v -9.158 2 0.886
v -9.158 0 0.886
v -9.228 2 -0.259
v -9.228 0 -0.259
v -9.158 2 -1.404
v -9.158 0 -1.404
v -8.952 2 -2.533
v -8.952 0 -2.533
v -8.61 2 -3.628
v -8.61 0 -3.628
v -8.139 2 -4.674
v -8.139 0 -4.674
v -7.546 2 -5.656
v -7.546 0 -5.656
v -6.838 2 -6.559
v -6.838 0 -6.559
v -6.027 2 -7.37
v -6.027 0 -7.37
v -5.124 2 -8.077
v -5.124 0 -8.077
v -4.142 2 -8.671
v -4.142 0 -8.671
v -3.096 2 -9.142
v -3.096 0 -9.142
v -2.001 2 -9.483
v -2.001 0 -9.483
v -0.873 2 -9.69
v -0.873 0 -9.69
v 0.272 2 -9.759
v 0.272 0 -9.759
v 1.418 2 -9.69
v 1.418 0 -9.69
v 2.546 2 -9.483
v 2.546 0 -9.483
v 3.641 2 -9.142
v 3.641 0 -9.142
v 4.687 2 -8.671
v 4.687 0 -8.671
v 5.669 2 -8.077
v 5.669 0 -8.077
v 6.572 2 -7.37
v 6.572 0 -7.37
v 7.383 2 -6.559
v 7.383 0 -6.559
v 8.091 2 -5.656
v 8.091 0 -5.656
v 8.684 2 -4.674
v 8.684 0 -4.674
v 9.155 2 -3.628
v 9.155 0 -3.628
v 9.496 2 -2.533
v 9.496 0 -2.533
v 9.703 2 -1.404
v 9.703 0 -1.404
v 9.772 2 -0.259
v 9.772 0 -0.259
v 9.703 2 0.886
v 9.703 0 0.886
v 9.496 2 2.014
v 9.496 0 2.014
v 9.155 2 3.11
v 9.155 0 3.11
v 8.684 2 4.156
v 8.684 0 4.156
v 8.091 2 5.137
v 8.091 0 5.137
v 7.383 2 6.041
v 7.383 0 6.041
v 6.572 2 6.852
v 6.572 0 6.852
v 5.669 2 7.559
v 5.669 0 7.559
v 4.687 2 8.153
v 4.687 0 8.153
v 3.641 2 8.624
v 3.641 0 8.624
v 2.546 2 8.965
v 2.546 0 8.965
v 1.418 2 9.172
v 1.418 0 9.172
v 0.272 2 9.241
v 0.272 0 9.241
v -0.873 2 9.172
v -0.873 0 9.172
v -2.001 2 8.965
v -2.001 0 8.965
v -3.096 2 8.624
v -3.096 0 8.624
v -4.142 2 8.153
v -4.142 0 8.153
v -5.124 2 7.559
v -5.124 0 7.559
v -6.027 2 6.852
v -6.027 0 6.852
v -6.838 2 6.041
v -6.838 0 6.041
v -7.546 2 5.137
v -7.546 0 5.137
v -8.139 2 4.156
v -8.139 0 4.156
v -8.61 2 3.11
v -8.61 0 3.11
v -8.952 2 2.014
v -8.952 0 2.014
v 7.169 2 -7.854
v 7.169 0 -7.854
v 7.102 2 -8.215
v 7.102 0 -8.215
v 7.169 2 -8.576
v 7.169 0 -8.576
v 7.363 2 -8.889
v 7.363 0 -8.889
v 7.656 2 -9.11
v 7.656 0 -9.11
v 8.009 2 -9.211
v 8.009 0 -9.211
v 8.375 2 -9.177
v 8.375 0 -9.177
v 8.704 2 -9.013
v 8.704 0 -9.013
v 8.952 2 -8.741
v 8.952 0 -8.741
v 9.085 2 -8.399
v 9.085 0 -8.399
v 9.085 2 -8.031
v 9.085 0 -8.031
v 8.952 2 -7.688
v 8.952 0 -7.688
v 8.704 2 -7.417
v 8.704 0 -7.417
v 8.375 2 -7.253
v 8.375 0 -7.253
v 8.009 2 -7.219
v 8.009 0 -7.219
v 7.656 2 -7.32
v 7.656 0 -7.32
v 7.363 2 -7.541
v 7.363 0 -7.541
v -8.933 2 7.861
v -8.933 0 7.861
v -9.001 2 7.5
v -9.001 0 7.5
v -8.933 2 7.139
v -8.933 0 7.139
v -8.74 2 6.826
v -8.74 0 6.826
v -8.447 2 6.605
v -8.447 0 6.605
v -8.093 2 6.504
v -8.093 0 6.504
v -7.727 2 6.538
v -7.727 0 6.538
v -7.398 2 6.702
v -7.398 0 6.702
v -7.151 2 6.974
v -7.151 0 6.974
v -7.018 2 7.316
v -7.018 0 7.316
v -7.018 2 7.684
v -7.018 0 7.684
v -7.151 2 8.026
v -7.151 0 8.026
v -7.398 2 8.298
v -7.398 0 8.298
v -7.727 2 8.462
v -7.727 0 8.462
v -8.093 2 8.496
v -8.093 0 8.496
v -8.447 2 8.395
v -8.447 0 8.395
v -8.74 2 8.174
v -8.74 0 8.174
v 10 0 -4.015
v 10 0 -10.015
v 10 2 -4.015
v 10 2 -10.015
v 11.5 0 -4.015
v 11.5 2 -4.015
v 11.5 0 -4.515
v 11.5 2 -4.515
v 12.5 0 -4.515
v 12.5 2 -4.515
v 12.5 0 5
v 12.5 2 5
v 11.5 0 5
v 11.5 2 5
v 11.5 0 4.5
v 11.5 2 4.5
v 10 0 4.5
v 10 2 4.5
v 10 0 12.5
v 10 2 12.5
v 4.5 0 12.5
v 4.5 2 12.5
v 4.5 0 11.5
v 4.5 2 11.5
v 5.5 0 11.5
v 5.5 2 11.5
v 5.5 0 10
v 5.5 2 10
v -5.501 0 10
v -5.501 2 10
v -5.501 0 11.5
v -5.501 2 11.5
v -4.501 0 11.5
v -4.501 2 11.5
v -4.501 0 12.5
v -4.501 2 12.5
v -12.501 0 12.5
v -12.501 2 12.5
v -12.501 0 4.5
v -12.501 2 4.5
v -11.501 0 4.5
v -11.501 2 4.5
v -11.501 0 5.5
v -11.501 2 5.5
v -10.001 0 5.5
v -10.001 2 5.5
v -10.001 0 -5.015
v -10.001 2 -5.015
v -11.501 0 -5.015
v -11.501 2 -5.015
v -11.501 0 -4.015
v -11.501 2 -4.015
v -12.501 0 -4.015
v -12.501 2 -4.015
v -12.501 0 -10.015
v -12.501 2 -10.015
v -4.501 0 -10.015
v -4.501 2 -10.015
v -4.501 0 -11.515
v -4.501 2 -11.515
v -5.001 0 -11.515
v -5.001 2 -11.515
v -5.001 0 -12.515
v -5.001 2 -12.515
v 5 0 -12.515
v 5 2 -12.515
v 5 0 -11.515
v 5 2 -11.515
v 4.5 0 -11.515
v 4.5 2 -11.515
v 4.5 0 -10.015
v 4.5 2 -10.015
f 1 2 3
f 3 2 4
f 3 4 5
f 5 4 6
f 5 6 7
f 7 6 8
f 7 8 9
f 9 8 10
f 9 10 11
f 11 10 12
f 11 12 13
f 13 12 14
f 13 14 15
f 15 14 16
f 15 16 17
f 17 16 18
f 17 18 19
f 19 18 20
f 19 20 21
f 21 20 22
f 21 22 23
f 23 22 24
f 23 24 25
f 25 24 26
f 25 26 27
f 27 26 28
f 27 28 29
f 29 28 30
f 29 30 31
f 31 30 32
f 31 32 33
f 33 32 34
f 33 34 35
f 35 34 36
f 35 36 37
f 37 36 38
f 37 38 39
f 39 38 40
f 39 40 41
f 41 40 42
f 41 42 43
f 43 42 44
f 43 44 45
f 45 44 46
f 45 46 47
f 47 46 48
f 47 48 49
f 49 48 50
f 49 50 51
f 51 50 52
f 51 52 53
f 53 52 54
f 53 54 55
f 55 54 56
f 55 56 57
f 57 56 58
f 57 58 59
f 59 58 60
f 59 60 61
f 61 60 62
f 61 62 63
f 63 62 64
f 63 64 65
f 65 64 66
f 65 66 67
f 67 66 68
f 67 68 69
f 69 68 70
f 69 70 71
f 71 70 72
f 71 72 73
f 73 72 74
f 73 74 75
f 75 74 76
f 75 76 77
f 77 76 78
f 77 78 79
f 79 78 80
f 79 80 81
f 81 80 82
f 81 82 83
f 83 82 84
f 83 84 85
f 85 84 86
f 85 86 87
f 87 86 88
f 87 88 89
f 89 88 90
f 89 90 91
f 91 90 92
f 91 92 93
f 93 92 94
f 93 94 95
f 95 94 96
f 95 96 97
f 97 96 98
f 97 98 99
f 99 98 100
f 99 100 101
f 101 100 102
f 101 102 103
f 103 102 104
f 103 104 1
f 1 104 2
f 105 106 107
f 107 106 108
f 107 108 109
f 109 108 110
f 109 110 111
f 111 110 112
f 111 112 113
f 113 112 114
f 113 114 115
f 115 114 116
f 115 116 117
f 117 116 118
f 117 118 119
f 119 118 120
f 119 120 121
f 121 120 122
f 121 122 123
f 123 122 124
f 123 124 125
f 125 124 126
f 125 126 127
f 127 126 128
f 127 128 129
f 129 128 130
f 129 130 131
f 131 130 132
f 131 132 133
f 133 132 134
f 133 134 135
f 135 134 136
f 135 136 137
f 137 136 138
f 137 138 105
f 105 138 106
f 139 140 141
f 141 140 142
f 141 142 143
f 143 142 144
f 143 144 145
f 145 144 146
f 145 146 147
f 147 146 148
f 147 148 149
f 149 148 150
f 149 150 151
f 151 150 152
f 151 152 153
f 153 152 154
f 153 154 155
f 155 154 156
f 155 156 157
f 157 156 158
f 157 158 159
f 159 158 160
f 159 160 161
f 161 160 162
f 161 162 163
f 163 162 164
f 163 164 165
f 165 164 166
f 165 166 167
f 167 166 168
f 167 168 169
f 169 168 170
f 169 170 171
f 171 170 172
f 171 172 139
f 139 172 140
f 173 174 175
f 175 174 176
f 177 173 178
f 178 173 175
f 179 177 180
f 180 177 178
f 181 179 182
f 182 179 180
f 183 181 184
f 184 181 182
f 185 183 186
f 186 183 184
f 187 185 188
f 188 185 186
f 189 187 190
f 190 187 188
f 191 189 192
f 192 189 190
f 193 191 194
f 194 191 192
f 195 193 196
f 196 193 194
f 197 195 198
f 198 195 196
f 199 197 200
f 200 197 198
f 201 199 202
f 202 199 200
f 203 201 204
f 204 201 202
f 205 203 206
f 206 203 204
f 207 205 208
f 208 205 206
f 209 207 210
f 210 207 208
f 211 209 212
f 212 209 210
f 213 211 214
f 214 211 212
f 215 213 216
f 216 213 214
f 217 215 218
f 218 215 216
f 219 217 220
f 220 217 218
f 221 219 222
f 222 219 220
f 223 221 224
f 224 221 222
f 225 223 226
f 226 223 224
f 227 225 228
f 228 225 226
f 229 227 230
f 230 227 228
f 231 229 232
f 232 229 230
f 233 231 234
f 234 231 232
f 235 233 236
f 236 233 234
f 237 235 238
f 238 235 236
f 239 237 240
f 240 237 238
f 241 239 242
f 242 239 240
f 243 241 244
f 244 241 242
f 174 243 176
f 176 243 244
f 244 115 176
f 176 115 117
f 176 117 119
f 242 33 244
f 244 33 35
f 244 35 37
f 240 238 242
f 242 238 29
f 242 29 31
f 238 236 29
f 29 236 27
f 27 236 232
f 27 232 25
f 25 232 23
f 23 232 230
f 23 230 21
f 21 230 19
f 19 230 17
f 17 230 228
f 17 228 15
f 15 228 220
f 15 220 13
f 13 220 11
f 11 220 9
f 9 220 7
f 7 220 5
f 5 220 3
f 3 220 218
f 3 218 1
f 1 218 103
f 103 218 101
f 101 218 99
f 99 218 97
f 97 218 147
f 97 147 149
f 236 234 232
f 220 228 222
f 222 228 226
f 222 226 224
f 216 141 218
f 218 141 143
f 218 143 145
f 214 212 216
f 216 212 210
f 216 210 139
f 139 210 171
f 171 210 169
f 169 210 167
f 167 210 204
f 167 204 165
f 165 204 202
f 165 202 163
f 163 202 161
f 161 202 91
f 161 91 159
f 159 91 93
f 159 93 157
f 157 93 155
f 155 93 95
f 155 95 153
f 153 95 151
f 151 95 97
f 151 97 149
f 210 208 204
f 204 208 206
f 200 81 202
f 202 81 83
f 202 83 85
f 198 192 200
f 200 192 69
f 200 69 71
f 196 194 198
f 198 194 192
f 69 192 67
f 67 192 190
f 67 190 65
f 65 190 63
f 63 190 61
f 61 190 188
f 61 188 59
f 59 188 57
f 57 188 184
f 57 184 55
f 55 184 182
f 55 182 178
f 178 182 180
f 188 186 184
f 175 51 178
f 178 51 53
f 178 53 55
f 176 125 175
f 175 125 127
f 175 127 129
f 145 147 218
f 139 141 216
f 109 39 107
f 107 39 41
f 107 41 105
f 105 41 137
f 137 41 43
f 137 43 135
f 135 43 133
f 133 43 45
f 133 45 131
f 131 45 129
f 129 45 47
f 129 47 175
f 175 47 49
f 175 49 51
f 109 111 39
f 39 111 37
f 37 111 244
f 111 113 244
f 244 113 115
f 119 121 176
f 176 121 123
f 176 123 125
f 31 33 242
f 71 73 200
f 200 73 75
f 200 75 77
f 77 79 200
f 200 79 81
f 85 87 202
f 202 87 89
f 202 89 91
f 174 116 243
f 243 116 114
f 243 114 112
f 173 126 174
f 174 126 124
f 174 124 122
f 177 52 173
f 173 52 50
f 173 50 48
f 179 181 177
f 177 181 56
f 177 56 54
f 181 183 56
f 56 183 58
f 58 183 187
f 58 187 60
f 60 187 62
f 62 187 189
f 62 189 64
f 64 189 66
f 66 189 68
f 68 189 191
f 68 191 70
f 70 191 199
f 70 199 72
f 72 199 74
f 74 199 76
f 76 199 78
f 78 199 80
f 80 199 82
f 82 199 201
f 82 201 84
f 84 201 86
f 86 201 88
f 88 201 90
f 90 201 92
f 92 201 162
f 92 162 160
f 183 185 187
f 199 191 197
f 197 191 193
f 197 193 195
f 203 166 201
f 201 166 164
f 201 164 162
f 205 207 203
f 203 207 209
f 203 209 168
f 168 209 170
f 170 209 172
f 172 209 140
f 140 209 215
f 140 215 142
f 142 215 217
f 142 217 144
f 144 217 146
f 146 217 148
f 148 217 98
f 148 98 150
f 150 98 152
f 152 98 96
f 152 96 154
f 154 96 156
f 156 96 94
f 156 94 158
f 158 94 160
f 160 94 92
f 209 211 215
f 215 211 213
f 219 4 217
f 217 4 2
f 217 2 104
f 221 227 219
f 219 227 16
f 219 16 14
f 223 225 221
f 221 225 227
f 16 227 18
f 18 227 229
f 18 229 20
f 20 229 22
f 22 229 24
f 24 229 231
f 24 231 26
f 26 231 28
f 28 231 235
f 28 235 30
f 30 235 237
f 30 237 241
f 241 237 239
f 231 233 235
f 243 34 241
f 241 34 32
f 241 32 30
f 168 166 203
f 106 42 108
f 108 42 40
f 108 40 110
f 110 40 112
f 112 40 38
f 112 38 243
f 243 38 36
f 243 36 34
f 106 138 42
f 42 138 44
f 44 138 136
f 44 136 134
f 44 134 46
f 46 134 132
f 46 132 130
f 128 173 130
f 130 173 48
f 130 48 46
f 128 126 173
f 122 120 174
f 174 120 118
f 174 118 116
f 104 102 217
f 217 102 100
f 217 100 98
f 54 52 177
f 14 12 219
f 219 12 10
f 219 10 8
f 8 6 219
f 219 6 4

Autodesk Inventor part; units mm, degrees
ref_plane "YZ Plane" through (0, 0, 0) normal (1, 0, 0) x (0, 1, 0)
ref_plane "XZ Plane" through (0, 0, 0) normal (0, 1, 0) x (-1, 0, 0)
ref_plane "XY Plane" through (0, 0, 0) normal (0, 0, 1) x (1, 0, 0)
sketch "Schizzo1" plane through (0, 0, 0) normal (0, 1, 0) x (-1, 0, 0)
  line L0 (10.0009, -10.0148) -> (9.0009, -10.0148)
  line L1 (-10, 9) -> (-10, 10)
  line L2 (-10, 12) -> (-10, 10)
  line L3 (-10, -10.0148) -> (-9, -10.0148)
  line L4 (9.0009, -10.0148) -> (8.0009, -10.0148)
  line L5 (-9, -10.0148) -> (-8, -10.0148)
  line L6 (-10, 9) -> (-10, 8)
  line L7 (-10, -10.0148) -> (-10, -7.7324)
  circle A0 centre (-0.2724, -0.2591) radius 9.5
  line L8 (12.5009, -8.0148) -> (12.5009, -10.0148)
  line L9 (12.5009, -10.0148) -> (10.0009, -10.0148)
  line L10 (12.5009, 7.9852) -> (12.5009, 9.9852)
  line L11 (8, 12.5) -> (10, 12.5)
  line L12 (12.5009, 9.9852) -> (12.5009, 12.5)
  line L13 (12.5009, 12.5) -> (10, 12.5)
  line L14 (-8, 12.5) -> (-10, 12.5)
  line L15 (-10, 12.5) -> (-10, 12)
  line L16 (8.0009, -10.0148) -> (7.5009, -10.0148)
  line L17 (-8, -10.0148) -> (-7.5, -10.0148)
  circle A1 centre (-8.1016, -8.2148) radius 1
  circle A2 centre (8.0009, 7.5) radius 1
  line L18 (12.5009, -7.0148) -> (12.5009, -8.0148)
  line L19 (-7, 12.5) -> (-8, 12.5)
  line L20 (7.5009, -10.0148) -> (4.5009, -10.0148)
  line L21 (-7.5, -10.0148) -> (-4.5, -10.0148)
  line L22 (4.5009, -11.5148) -> (5.0009, -11.5148)
  line L23 (5.0009, -11.5148) -> (5.0009, -12.5148)
  line L24 (4.5009, -11.5148) -> (4.5009, -10.0148)
  line L25 (-4.5, -11.5148) -> (-5, -11.5148)
  line L26 (-5, -11.5148) -> (-5, -12.5148)
  line L27 (-5, -12.5148) -> (5.0009, -12.5148)
  line L28 (-4.5, -11.5148) -> (-4.5, -10.0148)
  line L29 (4.5009, 11.5) -> (5.0009, 11.5)
  line L30 (-4.5, 12.5) -> (-7, 12.5)
  line L31 (5.0009, 10) -> (-4.5, 10)
  line L32 (-4.5, 11.5) -> (-5.5, 11.5)
  line L33 (-5.5, 11.5) -> (-5.5, 10)
  line L34 (-5.5, 10) -> (-4.5, 10)
  line L35 (-4.5, 11.5) -> (-4.5, 12.5)
  line L36 (4.5009, 11.5) -> (4.5009, 12.5)
  line L37 (4.5009, 11.5) -> (5.5009, 11.5)
  line L38 (5.5009, 11.5) -> (5.5009, 10)
  line L39 (5.5009, 10) -> (5.0009, 10)
  line L40 (8, 12.5) -> (4.5009, 12.5)
  line L41 (-10, -10.0148) -> (-10, -4.0148)
  line L42 (-10, 7.5) -> (-10, 4.5)
  line L43 (-10, 4.5) -> (-11.5, 4.5)
  line L44 (-11.5, 4.5) -> (-11.5, 5)
  line L45 (-11.5, 5) -> (-12.5, 5)
  line L46 (-10, -4.0148) -> (-11.5, -4.0148)
  line L47 (-11.5, -4.0148) -> (-11.5, -4.5148)
  line L48 (-11.5, -4.5148) -> (-12.5, -4.5148)
  line L49 (-10, 7.5) -> (-10, 8)
  line L50 (-12.5, 5) -> (-12.5, -4.5148)
  line L51 (12.5009, 4.5) -> (11.5009, 4.5)
  line L52 (11.5009, 4.5) -> (11.5009, 5.5)
  line L53 (11.5009, 5.5) -> (10.0009, 5.5)
  line L54 (12.5009, 4.5) -> (12.5009, 7.9852)
  line L55 (12.5009, -4.0148) -> (11.5009, -4.0148)
  line L56 (12.5009, -4.0148) -> (12.5009, -7.0148)
  line L57 (11.5009, -4.0148) -> (11.5009, -5.0148)
  line L58 (11.5009, -5.0148) -> (10.0009, -5.0148)
  line L59 (10.0009, -5.0148) -> (10.0009, 5.5)
  point P0 (0, 0)
  dimension "d45" = 2
  dimension "d54" = 2
  dimension "d56" = 0.5
  dimension "d59" = 0.5
  dimension "d72" = 2
  dimension "d81" = 3
  dimension "d82" = 0.5
  dimension "d83" = 0.5
  dimension "d87" = 1
  dimension "d90" = 0.5
  dimension "d92" = 0.5
  dimension "d93" = 1
extrude "Estrusione6" add sketch "Schizzo1" along normal blind 2
properties part number "Maschio-femmina"
